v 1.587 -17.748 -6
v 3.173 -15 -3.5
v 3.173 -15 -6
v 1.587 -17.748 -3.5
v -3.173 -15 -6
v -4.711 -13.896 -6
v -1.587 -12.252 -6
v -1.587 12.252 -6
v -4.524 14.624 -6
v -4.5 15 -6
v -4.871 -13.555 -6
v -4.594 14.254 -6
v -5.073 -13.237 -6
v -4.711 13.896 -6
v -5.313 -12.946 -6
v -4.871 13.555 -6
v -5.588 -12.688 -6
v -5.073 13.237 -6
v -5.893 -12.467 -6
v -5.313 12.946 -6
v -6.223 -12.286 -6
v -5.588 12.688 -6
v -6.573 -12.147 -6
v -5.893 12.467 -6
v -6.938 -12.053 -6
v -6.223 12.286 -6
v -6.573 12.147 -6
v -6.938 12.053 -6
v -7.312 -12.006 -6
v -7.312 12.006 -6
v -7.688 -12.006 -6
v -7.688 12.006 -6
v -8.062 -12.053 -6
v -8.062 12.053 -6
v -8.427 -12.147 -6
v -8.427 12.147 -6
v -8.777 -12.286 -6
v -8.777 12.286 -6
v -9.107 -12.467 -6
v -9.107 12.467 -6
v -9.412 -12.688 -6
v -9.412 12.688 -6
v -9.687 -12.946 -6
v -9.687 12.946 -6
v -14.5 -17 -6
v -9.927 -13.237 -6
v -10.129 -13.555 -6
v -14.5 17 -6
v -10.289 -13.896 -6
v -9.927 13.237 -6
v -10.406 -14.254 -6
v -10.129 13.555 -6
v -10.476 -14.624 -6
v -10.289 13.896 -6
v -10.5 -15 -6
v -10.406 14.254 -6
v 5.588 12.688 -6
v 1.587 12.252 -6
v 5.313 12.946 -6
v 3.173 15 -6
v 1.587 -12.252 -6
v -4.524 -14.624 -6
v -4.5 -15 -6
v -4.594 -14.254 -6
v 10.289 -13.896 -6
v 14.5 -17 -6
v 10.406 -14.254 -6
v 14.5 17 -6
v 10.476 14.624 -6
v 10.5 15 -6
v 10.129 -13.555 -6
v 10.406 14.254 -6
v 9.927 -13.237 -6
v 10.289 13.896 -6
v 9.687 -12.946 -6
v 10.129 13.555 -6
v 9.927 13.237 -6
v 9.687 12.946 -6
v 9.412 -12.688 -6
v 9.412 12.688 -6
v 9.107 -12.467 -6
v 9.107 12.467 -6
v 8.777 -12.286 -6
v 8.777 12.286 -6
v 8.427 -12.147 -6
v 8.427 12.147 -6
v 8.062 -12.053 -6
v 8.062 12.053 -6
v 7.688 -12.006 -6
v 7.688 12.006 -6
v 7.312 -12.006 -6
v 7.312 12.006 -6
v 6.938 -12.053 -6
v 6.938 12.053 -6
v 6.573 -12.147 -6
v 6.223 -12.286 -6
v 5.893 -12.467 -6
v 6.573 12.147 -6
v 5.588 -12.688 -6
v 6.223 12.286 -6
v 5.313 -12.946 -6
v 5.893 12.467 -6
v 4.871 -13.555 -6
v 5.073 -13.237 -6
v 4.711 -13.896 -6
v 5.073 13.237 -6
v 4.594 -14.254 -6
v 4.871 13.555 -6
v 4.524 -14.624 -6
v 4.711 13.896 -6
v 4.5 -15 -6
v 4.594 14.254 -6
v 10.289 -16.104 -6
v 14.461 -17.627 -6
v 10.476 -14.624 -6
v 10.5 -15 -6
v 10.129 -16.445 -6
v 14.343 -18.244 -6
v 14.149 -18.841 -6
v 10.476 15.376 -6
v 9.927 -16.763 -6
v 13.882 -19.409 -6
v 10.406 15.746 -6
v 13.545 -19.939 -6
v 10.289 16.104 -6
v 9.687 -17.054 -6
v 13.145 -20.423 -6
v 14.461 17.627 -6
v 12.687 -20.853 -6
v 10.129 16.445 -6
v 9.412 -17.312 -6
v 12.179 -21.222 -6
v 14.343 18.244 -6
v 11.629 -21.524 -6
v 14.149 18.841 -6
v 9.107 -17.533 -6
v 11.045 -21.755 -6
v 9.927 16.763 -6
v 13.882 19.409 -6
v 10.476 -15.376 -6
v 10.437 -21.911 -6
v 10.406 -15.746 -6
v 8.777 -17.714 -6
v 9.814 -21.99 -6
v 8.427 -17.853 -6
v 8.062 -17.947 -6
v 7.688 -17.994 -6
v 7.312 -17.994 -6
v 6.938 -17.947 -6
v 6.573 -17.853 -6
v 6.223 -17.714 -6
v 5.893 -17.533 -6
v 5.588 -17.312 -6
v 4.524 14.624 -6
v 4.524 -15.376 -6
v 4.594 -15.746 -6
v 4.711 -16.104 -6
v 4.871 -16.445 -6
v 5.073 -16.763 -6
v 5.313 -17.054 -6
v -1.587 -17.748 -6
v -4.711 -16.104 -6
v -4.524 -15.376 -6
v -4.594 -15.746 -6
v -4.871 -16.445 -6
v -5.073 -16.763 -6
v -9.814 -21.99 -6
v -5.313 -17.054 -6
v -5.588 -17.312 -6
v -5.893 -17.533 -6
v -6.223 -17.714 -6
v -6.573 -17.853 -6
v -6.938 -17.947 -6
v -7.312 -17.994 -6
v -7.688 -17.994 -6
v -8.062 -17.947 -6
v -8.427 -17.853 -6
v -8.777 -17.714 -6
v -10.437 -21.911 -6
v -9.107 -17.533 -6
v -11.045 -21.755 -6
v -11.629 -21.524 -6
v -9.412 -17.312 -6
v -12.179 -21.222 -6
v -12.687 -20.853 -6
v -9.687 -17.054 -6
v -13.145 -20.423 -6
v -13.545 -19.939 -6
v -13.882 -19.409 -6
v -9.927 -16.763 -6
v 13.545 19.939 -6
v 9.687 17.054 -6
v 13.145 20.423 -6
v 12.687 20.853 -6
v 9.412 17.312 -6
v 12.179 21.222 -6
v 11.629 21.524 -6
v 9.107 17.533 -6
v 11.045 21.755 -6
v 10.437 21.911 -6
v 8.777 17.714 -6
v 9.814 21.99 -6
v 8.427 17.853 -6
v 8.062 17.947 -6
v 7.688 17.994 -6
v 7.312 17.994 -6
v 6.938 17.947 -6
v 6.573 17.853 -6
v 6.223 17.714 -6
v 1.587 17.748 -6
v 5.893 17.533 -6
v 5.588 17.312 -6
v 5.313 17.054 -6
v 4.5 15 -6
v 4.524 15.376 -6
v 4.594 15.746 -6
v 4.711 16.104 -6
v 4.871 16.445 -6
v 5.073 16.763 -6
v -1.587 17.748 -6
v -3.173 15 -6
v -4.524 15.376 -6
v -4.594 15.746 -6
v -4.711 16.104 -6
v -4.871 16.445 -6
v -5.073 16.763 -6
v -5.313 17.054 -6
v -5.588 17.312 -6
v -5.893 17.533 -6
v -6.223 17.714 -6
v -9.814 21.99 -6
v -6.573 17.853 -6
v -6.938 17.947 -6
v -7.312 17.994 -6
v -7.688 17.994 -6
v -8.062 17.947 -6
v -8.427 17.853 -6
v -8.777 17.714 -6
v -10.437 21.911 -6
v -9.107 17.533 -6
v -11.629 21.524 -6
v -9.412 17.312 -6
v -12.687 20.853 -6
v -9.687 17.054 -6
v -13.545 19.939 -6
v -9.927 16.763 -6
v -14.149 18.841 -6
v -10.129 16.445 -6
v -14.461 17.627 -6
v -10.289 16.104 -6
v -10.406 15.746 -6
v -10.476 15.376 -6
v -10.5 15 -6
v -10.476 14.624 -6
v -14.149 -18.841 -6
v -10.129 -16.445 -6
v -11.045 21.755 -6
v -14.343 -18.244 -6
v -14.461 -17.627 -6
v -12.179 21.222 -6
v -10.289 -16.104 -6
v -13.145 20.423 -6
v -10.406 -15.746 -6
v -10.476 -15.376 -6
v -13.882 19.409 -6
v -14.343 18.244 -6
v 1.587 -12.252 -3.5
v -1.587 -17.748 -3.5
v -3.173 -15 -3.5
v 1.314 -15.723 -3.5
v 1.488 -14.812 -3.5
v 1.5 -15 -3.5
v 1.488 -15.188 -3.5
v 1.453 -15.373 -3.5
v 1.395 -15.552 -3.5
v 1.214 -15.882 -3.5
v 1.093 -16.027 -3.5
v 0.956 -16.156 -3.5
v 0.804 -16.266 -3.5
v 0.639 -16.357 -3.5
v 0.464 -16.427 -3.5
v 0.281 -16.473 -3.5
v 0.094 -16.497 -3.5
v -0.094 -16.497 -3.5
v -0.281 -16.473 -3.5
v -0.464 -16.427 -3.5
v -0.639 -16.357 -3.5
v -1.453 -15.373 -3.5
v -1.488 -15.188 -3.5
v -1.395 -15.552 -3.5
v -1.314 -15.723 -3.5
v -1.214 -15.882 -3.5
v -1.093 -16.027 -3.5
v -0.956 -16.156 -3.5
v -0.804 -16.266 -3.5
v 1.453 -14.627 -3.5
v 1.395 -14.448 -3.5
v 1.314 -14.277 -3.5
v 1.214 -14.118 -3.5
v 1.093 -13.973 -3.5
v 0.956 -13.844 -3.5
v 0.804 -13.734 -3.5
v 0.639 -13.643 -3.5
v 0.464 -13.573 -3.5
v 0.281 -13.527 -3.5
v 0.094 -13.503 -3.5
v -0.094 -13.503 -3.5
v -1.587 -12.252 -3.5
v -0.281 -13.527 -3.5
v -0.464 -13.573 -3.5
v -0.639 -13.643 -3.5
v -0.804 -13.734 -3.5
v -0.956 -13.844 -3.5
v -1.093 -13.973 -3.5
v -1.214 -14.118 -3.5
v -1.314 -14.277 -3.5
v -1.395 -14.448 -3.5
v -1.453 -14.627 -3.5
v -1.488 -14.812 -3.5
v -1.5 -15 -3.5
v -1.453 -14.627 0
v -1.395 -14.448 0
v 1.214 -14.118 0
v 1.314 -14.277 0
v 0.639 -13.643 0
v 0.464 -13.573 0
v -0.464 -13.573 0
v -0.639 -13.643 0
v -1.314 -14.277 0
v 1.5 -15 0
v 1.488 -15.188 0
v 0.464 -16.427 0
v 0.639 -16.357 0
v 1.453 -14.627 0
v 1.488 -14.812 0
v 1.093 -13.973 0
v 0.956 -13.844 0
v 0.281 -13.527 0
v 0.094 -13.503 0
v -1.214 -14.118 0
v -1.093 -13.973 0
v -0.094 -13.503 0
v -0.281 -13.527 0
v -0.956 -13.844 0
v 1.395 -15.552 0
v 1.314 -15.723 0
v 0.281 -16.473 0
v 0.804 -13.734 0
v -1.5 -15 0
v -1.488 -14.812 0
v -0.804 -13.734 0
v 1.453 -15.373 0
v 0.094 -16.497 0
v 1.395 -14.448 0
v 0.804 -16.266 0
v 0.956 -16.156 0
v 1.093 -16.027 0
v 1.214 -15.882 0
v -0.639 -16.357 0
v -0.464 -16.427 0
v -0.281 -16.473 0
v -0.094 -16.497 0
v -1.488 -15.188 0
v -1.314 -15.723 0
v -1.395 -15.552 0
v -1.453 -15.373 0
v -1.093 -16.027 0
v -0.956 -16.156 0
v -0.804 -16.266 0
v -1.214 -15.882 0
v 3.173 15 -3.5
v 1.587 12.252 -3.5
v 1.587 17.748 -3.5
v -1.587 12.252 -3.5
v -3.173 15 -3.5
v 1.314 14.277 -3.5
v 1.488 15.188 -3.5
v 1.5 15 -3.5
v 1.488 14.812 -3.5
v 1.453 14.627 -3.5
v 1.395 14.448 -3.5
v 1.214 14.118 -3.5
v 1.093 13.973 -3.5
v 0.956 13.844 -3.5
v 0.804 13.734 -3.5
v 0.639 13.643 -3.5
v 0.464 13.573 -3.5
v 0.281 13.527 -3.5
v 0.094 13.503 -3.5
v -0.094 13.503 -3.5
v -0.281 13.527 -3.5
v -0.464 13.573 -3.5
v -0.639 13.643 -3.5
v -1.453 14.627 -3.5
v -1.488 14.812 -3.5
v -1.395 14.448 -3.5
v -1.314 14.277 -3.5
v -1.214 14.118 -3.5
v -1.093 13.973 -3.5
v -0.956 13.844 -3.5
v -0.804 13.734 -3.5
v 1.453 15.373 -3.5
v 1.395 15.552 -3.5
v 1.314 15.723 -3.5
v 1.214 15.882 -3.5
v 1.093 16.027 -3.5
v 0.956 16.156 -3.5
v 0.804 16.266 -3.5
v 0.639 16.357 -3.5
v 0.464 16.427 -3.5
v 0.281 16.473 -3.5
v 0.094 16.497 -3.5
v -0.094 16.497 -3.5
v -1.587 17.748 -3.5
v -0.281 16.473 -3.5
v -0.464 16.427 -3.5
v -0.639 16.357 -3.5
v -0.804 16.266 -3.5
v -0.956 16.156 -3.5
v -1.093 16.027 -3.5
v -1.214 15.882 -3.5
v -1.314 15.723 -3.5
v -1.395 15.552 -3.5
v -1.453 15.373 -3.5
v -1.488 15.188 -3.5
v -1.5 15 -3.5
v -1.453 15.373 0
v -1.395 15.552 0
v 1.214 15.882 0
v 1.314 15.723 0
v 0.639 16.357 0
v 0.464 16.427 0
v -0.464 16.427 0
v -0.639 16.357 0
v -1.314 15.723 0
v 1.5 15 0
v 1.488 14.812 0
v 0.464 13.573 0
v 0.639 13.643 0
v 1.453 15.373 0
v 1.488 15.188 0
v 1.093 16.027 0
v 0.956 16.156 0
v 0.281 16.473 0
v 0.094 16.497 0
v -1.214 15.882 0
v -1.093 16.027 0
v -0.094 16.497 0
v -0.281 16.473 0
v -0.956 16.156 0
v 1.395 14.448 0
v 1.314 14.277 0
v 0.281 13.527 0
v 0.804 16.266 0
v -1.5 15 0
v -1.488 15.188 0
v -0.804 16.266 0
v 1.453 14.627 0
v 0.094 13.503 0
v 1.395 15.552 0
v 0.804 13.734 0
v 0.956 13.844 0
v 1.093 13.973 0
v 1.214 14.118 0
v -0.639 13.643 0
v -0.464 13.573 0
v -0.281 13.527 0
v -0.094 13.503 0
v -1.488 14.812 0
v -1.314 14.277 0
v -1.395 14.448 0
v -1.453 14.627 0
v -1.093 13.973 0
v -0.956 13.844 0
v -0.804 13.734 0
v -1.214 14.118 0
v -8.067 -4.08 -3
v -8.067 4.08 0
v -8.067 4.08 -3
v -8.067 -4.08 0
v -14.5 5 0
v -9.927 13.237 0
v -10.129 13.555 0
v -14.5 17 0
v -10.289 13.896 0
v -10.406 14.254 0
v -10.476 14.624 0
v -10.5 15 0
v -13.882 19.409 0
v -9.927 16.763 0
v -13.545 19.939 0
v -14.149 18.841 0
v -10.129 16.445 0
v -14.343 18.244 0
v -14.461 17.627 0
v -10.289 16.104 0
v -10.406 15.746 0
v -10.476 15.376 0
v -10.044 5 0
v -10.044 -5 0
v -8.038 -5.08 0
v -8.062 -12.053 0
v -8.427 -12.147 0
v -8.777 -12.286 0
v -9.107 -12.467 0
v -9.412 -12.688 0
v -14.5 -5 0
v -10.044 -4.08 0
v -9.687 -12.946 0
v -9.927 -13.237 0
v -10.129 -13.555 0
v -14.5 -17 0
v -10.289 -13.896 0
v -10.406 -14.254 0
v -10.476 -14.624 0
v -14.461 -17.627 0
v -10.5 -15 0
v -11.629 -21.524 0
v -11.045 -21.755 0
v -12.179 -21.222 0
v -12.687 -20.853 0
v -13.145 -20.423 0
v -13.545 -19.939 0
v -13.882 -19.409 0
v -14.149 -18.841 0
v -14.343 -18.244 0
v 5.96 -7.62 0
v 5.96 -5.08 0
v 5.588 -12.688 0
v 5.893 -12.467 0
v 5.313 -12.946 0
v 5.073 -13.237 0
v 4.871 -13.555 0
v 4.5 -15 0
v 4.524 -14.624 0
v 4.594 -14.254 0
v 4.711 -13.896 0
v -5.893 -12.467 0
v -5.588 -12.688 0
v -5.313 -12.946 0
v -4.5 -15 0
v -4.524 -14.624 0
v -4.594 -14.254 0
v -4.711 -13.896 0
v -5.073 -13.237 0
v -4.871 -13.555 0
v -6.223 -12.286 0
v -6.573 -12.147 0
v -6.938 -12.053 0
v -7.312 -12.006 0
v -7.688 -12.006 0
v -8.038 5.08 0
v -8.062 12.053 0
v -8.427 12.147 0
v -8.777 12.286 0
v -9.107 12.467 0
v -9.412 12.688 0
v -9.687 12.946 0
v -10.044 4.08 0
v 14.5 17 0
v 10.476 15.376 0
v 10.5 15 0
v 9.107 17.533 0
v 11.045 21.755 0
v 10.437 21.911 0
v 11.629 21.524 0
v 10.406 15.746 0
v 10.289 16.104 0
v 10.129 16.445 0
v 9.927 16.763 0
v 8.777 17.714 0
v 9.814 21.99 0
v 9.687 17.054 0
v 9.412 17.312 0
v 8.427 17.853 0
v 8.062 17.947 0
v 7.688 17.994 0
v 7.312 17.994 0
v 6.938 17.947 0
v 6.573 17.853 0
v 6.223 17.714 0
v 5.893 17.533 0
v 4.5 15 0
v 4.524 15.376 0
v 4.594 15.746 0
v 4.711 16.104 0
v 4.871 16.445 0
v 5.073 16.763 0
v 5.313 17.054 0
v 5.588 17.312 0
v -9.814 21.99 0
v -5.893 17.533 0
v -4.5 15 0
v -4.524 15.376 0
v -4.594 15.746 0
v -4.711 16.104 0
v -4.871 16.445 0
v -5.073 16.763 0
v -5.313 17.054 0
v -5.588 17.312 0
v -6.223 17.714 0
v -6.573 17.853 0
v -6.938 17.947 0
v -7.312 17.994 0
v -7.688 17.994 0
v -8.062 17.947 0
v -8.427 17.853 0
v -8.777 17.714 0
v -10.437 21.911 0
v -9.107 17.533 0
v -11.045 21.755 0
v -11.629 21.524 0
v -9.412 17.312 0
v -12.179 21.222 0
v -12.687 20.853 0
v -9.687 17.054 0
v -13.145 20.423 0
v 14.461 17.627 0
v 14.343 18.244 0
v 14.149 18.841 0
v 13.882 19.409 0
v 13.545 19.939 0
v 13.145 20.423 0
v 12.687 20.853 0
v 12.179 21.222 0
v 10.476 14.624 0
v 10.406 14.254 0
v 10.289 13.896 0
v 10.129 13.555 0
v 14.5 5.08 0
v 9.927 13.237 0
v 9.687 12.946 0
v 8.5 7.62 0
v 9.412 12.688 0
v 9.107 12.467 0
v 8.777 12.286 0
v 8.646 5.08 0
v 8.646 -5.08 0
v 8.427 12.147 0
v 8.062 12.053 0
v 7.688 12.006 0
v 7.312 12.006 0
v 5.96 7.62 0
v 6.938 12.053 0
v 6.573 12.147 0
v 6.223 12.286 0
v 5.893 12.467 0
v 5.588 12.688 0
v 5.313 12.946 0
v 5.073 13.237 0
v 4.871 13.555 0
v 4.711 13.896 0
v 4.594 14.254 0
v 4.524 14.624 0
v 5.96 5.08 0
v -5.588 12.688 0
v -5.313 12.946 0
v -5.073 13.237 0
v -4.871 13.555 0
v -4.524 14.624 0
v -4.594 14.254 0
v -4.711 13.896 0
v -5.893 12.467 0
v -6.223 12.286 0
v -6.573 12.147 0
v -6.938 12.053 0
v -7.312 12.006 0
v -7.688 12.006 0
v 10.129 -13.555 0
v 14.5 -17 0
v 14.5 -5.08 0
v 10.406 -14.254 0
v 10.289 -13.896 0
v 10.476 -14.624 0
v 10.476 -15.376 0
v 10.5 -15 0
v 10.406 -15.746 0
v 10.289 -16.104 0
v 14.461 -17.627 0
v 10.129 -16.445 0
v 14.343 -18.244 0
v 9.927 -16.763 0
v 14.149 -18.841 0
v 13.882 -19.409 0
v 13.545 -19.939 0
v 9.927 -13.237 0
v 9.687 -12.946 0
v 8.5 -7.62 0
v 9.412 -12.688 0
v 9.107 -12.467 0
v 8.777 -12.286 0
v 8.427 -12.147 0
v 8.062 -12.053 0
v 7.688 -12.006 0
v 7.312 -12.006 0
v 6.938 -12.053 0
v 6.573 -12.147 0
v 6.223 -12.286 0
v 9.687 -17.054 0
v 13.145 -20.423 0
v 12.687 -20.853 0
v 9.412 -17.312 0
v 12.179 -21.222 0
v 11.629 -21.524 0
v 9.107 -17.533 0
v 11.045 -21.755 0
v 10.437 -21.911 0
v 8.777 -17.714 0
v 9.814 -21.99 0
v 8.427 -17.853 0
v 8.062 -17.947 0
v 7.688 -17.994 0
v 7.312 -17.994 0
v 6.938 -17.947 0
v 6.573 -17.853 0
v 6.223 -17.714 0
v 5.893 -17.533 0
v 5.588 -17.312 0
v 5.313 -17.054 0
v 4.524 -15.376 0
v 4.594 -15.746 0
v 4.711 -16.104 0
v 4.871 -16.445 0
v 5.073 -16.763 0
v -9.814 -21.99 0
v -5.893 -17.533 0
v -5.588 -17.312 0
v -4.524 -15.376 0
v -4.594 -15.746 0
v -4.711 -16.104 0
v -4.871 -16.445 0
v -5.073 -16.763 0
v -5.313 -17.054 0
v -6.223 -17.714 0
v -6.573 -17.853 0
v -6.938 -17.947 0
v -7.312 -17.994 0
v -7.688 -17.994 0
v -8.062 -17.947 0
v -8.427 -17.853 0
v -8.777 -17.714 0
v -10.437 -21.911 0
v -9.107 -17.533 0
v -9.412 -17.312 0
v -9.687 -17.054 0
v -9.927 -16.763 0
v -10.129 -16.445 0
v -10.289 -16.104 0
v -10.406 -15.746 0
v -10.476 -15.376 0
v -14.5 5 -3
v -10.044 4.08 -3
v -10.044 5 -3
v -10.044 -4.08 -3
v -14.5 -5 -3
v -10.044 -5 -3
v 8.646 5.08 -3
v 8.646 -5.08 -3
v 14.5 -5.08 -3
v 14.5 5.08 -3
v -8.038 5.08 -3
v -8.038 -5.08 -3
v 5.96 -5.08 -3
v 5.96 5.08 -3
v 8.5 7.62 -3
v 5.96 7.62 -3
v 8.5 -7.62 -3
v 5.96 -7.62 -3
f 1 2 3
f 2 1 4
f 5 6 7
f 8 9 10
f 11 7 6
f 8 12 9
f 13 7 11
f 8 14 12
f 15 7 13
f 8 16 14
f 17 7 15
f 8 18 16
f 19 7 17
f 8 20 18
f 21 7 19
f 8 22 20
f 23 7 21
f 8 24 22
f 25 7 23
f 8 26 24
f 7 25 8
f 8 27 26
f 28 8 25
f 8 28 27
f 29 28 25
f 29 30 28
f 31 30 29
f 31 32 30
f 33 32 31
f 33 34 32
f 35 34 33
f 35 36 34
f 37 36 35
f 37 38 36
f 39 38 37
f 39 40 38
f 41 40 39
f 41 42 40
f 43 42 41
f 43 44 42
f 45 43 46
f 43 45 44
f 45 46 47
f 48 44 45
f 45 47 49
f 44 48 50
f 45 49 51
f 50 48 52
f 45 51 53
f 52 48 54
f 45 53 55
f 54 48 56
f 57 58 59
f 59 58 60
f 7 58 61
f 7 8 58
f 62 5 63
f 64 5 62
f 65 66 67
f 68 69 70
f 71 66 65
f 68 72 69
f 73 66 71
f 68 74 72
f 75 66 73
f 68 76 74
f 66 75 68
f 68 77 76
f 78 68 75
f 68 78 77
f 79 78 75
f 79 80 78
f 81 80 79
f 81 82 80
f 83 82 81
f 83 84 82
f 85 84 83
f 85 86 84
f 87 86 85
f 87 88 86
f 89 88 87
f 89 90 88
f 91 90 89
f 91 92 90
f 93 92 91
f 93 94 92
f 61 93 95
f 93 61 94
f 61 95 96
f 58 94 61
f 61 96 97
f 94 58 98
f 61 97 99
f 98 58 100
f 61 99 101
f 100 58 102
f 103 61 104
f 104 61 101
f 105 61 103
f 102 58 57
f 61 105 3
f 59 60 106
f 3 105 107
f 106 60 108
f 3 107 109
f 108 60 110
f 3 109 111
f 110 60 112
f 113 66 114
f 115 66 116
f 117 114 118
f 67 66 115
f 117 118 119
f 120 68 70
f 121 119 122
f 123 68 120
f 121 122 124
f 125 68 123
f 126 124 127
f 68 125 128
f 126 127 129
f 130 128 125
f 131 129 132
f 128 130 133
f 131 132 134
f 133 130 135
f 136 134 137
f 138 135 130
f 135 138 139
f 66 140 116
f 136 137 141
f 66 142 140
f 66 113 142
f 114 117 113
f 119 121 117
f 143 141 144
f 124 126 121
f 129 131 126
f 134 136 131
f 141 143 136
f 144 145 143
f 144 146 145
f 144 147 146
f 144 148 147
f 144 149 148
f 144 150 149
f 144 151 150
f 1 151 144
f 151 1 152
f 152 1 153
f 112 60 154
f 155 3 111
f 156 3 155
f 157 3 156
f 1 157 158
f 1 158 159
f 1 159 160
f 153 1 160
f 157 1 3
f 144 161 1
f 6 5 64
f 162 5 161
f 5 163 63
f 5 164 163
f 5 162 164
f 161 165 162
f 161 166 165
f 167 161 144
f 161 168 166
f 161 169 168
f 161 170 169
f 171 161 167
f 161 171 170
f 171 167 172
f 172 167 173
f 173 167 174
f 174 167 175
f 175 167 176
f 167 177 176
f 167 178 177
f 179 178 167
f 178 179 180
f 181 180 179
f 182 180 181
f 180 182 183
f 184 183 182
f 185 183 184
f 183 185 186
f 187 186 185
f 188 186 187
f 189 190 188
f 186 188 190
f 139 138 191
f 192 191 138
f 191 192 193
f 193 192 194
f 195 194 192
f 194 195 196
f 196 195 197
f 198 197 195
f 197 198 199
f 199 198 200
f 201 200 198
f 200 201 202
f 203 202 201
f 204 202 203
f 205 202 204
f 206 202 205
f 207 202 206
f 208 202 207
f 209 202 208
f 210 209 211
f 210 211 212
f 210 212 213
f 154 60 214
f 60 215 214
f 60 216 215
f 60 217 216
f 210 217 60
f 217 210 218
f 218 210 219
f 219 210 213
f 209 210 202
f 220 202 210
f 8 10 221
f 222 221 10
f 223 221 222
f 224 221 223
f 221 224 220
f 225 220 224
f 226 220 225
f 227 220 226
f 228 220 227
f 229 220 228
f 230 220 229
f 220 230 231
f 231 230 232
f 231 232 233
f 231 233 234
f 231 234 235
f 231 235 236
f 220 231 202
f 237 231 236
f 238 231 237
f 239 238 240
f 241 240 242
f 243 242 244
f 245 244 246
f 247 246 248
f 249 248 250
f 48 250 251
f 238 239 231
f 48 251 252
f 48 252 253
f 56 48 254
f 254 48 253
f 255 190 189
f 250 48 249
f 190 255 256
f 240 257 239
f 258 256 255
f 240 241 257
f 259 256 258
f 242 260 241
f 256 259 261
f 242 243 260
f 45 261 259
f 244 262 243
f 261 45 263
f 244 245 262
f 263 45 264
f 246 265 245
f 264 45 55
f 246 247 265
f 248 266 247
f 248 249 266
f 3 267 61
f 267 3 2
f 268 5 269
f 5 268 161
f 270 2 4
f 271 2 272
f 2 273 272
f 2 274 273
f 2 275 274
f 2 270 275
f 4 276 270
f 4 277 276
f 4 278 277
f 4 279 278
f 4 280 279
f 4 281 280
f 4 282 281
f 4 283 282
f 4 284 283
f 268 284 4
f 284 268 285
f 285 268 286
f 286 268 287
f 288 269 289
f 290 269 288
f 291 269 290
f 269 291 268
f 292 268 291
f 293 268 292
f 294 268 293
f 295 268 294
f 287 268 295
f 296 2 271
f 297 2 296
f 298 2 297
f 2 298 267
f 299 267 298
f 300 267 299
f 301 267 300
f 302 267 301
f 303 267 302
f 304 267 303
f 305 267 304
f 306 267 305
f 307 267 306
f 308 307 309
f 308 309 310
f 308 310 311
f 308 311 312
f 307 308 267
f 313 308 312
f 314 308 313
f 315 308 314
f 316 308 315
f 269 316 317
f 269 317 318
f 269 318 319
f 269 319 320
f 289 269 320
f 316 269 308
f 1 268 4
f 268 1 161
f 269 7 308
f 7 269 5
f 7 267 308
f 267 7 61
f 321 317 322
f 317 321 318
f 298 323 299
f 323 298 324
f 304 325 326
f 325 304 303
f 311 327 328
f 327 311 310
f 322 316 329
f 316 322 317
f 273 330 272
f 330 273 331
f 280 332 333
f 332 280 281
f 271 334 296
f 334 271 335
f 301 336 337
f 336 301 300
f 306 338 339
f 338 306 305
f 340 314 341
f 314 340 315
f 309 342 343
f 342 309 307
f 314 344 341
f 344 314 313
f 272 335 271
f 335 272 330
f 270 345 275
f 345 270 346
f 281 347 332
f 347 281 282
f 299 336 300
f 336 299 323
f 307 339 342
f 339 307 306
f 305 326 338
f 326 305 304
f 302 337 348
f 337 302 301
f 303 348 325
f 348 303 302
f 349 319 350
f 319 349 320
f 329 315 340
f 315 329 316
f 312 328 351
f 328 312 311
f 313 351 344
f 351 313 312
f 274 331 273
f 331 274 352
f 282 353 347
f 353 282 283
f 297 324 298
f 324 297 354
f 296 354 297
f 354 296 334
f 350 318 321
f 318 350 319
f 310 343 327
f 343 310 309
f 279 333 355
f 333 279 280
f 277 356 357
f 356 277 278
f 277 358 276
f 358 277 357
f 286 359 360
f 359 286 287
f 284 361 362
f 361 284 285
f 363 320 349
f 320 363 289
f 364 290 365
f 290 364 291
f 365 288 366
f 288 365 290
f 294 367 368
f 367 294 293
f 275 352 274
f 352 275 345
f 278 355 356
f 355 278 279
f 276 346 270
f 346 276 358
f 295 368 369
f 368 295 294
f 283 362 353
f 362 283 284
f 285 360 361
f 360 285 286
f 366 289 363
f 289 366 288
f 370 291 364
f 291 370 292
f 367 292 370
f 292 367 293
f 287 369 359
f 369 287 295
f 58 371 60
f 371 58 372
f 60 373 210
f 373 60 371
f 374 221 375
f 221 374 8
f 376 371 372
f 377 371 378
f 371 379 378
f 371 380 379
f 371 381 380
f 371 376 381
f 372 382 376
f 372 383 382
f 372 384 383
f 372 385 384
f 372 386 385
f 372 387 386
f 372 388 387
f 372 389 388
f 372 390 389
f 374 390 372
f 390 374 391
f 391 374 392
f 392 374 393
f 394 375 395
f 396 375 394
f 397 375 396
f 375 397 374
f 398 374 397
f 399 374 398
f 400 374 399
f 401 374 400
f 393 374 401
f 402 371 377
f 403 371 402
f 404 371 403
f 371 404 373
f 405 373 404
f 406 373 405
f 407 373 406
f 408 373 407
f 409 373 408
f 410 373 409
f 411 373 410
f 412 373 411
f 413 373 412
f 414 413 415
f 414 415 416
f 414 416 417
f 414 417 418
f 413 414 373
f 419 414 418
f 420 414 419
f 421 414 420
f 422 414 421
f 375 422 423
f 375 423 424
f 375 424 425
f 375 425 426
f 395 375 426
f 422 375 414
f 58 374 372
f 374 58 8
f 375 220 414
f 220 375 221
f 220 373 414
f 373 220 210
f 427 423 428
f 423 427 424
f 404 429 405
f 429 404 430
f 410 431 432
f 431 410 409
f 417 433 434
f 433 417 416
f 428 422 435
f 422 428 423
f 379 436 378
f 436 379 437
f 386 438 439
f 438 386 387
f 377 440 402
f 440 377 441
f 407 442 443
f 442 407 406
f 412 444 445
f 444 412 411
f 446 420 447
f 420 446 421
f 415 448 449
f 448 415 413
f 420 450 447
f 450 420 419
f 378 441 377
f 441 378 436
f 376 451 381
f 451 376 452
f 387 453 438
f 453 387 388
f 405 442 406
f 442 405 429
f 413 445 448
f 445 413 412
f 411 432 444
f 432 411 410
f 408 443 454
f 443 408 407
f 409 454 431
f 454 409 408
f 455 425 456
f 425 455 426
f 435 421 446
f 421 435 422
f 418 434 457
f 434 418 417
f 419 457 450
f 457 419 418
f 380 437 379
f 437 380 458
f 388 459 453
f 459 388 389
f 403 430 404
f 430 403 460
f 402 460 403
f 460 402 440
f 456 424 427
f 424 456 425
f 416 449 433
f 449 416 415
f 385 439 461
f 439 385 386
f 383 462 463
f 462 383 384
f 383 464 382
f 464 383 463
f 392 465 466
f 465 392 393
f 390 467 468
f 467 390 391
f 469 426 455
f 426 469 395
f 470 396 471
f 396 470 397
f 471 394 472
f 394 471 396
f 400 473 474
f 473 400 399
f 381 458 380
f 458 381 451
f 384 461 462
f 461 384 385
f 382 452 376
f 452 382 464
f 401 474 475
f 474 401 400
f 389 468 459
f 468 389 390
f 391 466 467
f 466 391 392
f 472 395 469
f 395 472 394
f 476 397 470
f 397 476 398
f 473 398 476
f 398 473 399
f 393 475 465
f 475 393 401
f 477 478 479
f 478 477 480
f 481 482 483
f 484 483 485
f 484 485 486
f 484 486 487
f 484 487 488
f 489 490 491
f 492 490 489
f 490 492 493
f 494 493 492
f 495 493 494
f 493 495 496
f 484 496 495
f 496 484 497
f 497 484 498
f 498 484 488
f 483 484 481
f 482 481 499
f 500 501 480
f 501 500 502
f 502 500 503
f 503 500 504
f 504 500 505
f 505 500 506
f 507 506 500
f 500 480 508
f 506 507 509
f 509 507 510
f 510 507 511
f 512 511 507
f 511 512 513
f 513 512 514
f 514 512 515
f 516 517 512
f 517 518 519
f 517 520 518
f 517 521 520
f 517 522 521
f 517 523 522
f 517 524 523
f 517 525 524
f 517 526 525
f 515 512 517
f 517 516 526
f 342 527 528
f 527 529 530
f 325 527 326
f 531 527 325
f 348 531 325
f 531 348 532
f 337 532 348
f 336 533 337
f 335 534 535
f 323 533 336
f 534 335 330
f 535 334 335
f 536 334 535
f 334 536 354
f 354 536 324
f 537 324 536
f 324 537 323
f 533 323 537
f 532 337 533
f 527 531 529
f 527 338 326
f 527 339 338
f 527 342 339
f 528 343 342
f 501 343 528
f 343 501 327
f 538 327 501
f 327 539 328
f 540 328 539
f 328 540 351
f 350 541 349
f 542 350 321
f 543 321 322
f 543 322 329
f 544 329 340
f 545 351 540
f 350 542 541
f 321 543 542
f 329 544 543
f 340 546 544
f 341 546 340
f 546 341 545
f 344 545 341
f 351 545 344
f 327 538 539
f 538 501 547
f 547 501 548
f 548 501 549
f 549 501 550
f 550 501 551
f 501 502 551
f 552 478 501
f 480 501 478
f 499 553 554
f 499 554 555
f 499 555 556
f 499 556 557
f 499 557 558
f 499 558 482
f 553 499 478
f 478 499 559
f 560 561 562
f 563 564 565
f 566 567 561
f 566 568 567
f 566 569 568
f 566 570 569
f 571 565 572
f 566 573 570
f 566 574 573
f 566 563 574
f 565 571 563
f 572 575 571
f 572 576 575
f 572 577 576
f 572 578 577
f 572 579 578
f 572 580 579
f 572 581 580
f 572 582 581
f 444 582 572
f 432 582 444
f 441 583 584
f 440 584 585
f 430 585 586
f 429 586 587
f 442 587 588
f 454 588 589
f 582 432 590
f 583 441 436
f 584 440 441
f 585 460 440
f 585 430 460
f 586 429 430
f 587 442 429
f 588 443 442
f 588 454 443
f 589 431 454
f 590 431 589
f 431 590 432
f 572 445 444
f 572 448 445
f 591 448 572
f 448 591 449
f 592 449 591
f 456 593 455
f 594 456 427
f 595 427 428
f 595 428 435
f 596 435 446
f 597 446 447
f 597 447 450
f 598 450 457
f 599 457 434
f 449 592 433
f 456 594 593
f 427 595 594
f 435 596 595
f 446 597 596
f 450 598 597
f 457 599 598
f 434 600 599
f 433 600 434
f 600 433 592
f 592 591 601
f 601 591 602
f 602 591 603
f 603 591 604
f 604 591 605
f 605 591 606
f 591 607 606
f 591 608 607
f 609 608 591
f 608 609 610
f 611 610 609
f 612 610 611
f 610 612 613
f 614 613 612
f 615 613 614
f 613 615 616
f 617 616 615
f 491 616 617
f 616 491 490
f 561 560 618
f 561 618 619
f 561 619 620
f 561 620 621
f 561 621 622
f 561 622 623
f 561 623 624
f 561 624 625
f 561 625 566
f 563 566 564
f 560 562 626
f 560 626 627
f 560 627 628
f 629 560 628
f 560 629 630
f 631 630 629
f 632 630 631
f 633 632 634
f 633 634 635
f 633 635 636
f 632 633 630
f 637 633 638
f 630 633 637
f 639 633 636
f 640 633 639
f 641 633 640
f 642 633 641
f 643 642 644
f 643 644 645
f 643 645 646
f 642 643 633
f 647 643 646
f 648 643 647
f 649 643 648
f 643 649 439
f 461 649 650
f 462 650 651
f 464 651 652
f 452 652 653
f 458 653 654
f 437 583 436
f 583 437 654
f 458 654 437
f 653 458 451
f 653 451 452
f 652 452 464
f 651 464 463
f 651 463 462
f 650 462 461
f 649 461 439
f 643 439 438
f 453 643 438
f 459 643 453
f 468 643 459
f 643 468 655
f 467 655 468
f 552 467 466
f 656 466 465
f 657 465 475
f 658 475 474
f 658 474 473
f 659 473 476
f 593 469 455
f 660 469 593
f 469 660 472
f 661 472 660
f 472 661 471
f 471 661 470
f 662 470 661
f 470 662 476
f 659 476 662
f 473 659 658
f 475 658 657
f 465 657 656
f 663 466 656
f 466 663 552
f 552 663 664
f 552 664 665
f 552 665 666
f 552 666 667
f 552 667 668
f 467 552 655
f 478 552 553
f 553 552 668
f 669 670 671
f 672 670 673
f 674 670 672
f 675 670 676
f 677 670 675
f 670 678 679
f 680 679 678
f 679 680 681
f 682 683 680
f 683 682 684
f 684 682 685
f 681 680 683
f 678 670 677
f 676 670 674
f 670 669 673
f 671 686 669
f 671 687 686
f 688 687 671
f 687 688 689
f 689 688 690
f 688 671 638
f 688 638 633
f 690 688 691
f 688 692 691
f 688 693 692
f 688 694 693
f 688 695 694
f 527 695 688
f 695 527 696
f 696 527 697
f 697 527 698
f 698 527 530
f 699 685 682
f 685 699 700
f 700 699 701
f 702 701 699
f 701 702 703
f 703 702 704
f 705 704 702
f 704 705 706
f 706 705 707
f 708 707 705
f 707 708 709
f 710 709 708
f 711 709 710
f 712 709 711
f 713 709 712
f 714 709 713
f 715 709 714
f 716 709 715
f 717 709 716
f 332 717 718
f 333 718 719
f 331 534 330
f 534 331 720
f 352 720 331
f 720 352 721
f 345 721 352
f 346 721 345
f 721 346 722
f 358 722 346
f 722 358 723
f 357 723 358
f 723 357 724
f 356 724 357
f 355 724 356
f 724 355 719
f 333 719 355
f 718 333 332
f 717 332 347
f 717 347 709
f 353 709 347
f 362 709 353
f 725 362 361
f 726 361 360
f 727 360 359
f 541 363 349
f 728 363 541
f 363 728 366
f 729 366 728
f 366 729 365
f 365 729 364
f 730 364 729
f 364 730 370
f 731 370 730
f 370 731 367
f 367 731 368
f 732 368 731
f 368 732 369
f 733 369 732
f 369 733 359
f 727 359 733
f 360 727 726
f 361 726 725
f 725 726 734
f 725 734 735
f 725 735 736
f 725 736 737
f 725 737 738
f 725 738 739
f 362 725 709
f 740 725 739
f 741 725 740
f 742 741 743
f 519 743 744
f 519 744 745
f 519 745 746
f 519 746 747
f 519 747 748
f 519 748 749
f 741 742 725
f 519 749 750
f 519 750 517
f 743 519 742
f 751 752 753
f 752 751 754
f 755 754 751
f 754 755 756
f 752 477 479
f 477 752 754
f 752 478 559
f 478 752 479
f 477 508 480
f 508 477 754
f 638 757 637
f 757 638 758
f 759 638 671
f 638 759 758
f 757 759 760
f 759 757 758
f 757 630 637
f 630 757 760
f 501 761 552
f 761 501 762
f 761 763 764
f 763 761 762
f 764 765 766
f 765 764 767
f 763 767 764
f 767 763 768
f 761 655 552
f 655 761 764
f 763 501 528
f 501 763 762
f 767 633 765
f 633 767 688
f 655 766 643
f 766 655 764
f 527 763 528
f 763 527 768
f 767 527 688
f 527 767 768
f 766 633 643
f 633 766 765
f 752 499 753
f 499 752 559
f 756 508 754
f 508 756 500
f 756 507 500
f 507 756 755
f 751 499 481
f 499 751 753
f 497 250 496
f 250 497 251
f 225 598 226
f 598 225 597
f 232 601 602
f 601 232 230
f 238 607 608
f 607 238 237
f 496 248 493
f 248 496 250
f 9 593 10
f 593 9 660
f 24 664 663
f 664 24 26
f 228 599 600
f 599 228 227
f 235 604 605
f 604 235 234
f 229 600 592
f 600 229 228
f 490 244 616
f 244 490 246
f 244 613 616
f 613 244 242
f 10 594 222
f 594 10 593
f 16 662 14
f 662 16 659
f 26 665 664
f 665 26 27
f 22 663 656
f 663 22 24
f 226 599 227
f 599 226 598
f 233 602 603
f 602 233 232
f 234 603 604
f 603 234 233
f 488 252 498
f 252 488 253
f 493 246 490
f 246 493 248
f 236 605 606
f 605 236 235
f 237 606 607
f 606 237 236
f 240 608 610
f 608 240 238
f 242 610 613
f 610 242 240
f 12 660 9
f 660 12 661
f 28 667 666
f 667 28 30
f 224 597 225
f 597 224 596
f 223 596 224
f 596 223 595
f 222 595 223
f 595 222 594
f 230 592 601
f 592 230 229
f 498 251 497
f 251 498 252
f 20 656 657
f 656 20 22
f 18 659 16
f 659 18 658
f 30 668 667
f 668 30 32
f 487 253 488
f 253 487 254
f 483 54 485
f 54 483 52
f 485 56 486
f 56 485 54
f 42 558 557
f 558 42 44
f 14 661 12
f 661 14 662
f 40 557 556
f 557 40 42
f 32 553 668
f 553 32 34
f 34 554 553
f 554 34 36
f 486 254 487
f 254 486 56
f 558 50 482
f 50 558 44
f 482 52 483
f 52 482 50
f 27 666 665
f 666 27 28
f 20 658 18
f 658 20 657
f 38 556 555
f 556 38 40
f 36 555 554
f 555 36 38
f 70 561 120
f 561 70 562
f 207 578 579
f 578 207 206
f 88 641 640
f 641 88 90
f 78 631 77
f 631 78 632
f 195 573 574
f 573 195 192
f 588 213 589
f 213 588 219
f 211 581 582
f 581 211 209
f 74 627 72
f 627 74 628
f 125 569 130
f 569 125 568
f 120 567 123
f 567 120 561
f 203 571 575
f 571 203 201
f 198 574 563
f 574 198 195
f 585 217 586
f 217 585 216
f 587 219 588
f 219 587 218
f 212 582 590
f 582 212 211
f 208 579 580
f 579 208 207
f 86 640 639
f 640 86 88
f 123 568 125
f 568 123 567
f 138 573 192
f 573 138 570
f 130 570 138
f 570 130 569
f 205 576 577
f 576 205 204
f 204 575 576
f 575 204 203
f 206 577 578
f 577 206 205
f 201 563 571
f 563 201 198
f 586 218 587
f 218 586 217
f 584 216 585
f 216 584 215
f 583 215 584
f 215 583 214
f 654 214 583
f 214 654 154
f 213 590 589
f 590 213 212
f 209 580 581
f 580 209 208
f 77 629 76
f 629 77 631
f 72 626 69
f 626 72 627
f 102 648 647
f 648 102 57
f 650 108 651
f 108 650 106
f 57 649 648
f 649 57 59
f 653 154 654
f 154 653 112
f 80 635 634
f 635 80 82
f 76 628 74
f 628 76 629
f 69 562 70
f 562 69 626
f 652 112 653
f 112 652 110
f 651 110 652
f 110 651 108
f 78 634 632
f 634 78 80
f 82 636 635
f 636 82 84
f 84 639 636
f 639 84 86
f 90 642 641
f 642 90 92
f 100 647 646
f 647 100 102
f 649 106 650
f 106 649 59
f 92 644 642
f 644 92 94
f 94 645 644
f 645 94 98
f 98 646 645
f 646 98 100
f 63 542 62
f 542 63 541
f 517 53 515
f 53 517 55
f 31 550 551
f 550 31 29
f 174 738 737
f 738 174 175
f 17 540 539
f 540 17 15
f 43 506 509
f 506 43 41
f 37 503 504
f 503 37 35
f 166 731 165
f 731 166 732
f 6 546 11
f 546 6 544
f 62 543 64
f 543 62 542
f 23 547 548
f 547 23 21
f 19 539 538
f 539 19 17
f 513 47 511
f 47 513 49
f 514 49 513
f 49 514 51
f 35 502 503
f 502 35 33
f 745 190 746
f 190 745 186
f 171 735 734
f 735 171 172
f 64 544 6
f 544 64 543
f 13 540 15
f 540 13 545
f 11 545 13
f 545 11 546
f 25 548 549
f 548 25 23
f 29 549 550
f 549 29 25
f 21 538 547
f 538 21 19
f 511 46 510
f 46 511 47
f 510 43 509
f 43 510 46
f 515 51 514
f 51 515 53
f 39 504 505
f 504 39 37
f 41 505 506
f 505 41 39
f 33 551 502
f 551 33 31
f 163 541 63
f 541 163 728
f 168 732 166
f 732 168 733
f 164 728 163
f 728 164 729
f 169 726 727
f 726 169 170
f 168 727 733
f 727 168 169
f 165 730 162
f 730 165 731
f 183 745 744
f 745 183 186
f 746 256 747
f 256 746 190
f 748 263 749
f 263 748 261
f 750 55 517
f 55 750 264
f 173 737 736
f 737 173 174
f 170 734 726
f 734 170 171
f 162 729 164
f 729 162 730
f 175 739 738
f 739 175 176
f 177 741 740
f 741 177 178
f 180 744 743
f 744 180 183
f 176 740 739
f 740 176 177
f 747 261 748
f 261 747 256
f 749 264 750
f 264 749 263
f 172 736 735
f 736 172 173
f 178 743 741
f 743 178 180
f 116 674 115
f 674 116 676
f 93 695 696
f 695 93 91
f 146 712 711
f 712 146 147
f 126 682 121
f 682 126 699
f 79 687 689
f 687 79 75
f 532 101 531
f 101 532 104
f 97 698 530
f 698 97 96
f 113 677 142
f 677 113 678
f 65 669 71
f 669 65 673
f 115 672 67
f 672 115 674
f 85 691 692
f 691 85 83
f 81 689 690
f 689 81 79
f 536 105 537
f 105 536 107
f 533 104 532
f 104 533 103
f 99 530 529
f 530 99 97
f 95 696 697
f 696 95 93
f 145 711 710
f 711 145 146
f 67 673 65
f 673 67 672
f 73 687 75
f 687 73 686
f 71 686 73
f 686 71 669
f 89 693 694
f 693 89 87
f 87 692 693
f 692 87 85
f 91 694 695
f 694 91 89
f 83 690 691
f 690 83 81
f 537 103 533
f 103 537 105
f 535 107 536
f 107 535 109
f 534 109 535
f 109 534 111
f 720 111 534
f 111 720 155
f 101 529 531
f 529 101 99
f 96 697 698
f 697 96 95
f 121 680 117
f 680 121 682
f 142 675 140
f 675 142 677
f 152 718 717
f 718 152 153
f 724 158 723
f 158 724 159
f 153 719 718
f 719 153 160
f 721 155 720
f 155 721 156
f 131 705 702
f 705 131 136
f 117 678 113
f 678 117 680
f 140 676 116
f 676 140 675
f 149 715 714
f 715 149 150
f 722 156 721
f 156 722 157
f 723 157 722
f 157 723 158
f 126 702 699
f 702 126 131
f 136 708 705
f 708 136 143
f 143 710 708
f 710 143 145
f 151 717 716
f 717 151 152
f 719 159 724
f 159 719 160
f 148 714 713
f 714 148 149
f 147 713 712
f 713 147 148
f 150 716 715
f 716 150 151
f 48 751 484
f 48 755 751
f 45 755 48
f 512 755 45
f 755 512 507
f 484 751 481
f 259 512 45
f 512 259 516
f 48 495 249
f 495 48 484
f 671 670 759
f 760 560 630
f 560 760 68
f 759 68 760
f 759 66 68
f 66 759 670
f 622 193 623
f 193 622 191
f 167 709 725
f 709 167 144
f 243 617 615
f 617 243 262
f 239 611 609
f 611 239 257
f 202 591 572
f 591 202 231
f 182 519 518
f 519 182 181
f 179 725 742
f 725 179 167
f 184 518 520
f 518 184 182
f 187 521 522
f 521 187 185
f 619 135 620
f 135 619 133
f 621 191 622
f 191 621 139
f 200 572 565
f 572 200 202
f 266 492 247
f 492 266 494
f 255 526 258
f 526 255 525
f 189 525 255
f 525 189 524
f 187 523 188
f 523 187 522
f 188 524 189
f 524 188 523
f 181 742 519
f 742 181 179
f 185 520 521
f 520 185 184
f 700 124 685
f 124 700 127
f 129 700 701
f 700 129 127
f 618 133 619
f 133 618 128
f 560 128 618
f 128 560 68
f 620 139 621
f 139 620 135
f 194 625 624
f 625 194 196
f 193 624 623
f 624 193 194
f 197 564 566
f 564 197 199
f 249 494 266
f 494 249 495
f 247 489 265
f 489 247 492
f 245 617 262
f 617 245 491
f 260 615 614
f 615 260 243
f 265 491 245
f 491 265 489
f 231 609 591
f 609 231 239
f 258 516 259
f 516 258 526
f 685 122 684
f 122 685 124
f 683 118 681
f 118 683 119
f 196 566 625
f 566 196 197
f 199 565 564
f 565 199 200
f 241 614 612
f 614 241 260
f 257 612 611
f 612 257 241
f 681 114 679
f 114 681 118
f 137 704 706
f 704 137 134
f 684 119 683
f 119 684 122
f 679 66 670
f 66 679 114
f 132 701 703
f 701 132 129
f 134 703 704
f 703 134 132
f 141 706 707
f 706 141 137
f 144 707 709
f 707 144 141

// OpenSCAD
$fn = 50;


difference() {
	union() {
		translate(v = [0, 0, -6]) {
			hull() {
				translate(v = [-9.5000000000, 17.0000000000, 0]) {
					cylinder(h = 6, r = 5);
				}
				translate(v = [9.5000000000, 17.0000000000, 0]) {
					cylinder(h = 6, r = 5);
				}
				translate(v = [-9.5000000000, -17.0000000000, 0]) {
					cylinder(h = 6, r = 5);
				}
				translate(v = [9.5000000000, -17.0000000000, 0]) {
					cylinder(h = 6, r = 5);
				}
			}
		}
	}
	union() {
		translate(v = [0, -15, -6]) {
			rotate(a = [0, 0, 0]) {
				difference() {
					union() {
						linear_extrude(height = 2.5000000000) {
							polygon(points = [[3.1735000000, 0.0000000000], [1.5867500000, 2.7483316189], [-1.5867500000, 2.7483316189], [-3.1735000000, 0.0000000000], [-1.5867500000, -2.7483316189], [1.5867500000, -2.7483316189]]);
						}
						translate(v = [0, 0, -50.0000000000]) {
							cylinder(h = 100, r = 1.5000000000);
						}
						translate(v = [0, 0, -50.0000000000]) {
							cylinder(h = 100, r = 1.5000000000);
						}
						translate(v = [0, 0, -50.0000000000]) {
							cylinder(h = 100, r = 1.5000000000);
						}
					}
					union();
				}
			}
		}
		translate(v = [0, 15, -6]) {
			rotate(a = [0, 0, 0]) {
				difference() {
					union() {
						linear_extrude(height = 2.5000000000) {
							polygon(points = [[3.1735000000, 0.0000000000], [1.5867500000, 2.7483316189], [-1.5867500000, 2.7483316189], [-3.1735000000, 0.0000000000], [-1.5867500000, -2.7483316189], [1.5867500000, -2.7483316189]]);
						}
						translate(v = [0, 0, -50.0000000000]) {
							cylinder(h = 100, r = 1.5000000000);
						}
						translate(v = [0, 0, -50.0000000000]) {
							cylinder(h = 100, r = 1.5000000000);
						}
						translate(v = [0, 0, -50.0000000000]) {
							cylinder(h = 100, r = 1.5000000000);
						}
					}
					union();
				}
			}
		}
		translate(v = [15.0000000000, 0, -3]) {
			rotate(a = [0, 0, 180]) {
				difference() {
					union() {
						#translate(v = [23.0670000000, -4.0800000000, 0]) {
							cube(size = [5, 8.1600000000, 3]);
						}
						#translate(v = [0.3540000000, -5.0800000000, 0]) {
							cube(size = [6, 10.1600000000, 3]);
						}
						#translate(v = [9.0380000000, -5.0800000000, 0]) {
							cube(size = [14, 10.1600000000, 3]);
						}
						#translate(v = [6.5000000000, -7.6200000000, 0]) {
							cube(size = [2.5400000000, 15.2400000000, 3]);
						}
						#translate(v = [25.0440000000, -5.0000000000, 0]) {
							cube(size = [7, 10, 3]);
						}
					}
					union();
				}
			}
		}
		translate(v = [-7.5000000000, 15.0000000000, -50.0000000000]) {
			cylinder(h = 100, r = 3.0000000000);
		}
		translate(v = [7.5000000000, 15.0000000000, -50.0000000000]) {
			cylinder(h = 100, r = 3.0000000000);
		}
		translate(v = [-7.5000000000, -15.0000000000, -50.0000000000]) {
			cylinder(h = 100, r = 3.0000000000);
		}
		translate(v = [7.5000000000, -15.0000000000, -50.0000000000]) {
			cylinder(h = 100, r = 3.0000000000);
		}
	}
}
